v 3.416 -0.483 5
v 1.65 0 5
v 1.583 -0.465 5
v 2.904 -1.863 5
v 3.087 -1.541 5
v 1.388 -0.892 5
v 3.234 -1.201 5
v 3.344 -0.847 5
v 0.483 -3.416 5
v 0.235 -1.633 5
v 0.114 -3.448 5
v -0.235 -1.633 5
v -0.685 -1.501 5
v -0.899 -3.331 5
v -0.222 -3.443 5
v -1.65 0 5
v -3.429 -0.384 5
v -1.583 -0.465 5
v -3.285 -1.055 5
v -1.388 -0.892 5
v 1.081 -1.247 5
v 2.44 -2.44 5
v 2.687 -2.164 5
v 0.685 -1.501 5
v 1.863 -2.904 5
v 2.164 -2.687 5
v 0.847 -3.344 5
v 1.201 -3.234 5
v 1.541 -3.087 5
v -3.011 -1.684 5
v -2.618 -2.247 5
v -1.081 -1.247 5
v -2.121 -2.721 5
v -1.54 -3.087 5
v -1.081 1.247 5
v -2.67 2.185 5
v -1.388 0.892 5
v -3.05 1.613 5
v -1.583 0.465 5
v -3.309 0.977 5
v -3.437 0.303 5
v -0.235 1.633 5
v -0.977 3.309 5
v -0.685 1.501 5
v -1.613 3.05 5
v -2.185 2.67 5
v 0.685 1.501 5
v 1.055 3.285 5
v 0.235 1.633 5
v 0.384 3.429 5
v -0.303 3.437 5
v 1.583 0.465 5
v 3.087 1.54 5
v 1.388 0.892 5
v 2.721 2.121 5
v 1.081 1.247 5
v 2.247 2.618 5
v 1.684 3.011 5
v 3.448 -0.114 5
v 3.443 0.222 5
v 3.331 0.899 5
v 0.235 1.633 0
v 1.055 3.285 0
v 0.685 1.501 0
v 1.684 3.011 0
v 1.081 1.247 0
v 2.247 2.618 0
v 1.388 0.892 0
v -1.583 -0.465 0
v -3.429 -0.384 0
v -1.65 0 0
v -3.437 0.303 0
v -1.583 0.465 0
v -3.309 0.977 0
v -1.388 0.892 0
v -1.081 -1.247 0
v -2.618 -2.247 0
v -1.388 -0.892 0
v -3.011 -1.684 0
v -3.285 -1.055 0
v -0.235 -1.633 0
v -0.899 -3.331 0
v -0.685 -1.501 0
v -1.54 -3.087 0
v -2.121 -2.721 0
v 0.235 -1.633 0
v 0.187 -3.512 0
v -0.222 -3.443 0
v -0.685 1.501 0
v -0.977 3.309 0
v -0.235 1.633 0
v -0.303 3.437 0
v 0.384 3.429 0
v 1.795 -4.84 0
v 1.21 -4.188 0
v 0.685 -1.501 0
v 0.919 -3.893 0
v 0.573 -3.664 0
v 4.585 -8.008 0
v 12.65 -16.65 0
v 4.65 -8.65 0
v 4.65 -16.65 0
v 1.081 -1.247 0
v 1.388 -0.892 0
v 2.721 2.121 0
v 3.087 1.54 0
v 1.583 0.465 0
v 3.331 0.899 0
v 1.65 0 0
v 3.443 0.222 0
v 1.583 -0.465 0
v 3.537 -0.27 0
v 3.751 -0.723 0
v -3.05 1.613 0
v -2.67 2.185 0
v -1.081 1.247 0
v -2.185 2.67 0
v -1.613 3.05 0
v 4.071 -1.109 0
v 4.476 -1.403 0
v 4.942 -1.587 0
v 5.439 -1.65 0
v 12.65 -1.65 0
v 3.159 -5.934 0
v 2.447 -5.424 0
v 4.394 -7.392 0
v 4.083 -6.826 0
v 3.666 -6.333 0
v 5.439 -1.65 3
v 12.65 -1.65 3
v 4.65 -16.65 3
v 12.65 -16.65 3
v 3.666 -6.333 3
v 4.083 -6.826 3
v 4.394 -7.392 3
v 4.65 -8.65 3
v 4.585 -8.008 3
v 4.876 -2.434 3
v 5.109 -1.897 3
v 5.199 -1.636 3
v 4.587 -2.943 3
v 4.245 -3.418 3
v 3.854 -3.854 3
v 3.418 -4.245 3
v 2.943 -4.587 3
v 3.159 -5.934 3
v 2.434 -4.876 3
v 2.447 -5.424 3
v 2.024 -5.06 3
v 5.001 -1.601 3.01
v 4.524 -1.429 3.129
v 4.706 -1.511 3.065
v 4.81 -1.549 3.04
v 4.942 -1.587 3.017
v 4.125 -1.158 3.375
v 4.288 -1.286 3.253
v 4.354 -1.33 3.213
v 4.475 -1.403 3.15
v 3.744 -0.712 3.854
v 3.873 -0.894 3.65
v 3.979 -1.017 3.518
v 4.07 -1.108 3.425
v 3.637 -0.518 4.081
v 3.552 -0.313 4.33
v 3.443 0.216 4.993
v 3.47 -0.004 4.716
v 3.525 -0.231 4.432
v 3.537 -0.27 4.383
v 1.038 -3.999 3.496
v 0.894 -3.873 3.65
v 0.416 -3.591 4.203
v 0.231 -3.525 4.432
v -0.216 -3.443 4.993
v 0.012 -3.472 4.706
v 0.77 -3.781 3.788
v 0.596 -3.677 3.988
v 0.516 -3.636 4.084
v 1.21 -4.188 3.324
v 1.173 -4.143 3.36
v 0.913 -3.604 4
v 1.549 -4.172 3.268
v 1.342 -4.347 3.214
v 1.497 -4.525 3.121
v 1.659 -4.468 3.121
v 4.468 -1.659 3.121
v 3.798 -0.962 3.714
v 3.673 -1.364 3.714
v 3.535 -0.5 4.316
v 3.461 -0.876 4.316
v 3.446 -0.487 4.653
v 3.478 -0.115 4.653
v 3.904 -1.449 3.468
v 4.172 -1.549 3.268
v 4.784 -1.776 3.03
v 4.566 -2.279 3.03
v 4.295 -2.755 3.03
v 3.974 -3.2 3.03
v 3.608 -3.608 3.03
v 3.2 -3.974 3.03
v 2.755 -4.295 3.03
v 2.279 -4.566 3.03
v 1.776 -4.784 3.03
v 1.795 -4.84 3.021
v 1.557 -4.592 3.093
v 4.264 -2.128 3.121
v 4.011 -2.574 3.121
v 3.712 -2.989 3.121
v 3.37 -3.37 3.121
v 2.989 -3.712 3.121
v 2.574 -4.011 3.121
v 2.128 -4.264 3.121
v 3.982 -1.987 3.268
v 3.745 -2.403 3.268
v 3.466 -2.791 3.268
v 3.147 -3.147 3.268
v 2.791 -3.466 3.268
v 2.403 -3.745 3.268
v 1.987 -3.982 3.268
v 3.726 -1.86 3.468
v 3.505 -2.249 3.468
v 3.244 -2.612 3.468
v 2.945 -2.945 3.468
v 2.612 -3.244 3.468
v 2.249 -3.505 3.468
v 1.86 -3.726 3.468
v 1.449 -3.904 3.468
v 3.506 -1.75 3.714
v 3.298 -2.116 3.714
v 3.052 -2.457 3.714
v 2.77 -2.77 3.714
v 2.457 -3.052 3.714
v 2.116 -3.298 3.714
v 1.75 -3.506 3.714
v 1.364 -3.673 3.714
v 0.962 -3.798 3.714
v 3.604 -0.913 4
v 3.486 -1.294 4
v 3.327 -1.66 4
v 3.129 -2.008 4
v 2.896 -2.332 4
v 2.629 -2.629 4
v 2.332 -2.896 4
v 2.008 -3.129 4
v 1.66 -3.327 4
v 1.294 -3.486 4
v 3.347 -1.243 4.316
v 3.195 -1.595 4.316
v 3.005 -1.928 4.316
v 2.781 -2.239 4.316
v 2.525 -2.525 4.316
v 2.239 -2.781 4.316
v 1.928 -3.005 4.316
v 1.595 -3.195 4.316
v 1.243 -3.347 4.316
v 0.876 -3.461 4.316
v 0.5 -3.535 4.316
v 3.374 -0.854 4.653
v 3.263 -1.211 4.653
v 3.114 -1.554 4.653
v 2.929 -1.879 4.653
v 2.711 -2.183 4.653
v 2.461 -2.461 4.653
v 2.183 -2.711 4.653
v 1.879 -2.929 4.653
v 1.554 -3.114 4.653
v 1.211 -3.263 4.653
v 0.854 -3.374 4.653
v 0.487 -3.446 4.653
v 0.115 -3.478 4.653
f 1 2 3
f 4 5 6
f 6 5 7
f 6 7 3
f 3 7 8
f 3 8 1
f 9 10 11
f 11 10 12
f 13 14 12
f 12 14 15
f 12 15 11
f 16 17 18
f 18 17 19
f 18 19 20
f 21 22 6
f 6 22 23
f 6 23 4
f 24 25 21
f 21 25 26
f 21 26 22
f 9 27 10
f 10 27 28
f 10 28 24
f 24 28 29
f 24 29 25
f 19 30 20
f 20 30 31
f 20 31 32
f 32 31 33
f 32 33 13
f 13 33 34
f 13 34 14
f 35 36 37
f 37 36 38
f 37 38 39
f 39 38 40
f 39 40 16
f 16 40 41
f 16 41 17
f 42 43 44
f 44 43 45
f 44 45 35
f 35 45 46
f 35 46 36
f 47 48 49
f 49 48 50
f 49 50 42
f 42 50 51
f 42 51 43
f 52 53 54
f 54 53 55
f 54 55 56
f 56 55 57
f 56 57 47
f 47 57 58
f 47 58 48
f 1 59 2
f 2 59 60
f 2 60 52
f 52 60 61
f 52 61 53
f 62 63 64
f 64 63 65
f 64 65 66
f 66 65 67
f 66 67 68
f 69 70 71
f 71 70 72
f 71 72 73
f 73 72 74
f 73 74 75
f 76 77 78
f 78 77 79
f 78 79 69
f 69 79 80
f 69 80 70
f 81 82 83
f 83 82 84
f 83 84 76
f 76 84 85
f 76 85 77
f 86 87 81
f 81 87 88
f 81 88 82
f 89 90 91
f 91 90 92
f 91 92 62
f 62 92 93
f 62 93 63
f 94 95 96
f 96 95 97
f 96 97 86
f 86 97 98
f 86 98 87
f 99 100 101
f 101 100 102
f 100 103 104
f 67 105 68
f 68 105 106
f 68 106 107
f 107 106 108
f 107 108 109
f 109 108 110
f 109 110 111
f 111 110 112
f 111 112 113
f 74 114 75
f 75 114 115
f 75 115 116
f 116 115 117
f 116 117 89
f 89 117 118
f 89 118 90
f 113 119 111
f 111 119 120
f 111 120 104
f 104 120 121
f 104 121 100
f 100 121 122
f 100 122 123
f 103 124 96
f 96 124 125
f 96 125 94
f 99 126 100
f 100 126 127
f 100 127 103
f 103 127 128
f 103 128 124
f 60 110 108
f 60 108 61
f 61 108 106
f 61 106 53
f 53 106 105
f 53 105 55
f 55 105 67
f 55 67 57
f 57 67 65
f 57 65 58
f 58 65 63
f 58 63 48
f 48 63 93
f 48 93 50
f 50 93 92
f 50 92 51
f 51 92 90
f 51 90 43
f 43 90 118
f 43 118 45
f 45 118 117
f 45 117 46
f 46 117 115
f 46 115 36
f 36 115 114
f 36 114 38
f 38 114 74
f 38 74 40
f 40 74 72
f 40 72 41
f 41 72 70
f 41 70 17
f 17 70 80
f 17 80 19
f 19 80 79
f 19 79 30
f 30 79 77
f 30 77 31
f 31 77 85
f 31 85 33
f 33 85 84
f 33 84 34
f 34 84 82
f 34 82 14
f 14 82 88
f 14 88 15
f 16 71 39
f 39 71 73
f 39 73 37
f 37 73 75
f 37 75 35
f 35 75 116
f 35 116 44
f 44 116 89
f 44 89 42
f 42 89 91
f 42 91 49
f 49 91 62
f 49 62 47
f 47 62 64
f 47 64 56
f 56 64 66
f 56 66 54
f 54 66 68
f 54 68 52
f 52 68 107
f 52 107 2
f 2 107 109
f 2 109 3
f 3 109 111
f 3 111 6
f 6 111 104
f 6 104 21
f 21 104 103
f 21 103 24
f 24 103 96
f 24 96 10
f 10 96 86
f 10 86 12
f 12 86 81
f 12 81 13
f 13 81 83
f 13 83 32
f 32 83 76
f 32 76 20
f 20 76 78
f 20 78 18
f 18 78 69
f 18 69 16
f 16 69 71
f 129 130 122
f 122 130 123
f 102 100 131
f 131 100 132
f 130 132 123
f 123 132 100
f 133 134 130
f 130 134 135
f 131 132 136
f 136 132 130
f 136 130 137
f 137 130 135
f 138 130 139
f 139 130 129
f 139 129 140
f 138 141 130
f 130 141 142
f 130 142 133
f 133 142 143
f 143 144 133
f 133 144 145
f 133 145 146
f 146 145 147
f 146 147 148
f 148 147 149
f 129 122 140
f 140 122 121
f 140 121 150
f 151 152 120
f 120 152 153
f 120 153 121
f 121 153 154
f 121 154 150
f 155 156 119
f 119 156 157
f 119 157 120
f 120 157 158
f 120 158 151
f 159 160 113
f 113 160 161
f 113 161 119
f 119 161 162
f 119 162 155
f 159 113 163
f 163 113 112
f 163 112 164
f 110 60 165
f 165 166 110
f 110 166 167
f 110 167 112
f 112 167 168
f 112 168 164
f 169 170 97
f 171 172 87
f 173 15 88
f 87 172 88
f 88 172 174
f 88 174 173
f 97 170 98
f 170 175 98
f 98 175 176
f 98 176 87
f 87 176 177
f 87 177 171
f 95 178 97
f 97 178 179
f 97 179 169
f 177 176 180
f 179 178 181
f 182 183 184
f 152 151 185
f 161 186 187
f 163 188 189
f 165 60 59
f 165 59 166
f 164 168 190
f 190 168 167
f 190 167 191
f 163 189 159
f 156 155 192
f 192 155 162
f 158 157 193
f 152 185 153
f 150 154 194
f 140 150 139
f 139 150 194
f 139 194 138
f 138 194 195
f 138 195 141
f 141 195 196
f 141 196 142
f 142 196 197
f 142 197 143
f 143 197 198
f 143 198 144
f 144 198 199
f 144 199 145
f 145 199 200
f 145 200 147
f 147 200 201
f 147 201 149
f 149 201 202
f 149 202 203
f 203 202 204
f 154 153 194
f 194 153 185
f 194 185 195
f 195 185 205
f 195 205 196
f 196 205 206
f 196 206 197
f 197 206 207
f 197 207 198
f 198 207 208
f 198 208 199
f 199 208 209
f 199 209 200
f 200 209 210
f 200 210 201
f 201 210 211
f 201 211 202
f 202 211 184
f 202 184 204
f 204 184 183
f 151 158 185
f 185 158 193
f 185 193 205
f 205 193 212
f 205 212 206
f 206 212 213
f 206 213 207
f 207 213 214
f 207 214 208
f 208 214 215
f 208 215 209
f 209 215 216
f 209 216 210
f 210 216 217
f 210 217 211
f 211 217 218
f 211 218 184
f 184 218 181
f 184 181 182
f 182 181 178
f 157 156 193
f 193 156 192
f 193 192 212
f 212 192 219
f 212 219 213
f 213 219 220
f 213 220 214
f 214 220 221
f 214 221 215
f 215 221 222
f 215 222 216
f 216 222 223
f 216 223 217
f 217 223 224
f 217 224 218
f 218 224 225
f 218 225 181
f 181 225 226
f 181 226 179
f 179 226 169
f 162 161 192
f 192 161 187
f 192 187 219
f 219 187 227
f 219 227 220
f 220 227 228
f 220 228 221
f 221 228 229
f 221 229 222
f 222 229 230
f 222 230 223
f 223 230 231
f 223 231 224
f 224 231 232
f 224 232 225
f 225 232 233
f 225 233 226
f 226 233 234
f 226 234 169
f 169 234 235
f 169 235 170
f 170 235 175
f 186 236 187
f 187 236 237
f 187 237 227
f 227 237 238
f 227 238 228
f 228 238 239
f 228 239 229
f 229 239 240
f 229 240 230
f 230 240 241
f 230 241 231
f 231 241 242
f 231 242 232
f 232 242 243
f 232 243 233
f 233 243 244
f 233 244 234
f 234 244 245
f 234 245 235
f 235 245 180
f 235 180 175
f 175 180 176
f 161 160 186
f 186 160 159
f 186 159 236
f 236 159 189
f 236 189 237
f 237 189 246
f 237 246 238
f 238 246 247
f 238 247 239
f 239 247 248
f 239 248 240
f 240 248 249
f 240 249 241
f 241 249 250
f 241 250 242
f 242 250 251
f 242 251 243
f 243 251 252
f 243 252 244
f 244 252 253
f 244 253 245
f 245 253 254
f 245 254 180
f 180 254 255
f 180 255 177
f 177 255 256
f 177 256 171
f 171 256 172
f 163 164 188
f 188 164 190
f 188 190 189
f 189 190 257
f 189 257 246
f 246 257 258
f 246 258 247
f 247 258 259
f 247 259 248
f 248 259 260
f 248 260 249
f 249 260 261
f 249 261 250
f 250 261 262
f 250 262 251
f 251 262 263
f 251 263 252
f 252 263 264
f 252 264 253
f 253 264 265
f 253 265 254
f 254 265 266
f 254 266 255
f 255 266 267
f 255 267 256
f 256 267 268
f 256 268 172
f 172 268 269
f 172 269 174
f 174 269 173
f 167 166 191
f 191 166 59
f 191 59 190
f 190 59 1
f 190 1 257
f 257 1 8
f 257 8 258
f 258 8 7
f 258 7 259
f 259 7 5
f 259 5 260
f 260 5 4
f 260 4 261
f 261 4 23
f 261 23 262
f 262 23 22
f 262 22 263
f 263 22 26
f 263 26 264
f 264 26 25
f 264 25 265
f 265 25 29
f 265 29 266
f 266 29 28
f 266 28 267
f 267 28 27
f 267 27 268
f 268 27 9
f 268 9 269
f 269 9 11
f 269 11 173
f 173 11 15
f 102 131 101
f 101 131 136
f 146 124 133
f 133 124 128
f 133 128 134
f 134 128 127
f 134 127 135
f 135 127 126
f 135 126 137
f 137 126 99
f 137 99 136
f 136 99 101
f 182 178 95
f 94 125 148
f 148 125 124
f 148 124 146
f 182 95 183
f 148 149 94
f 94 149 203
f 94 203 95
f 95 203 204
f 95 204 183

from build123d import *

# Parameters (mm, degrees)
SKETCH1_R           = 3.45
SKETCH1_R_2         = 1.65
BOSS_EXTRUDE1_DEPTH = 5
SKETCH2_W           = 11
SKETCH2_H           = 15
BOSS_EXTRUDE2_DEPTH = 3
FILLET1_R           = 2
CUT_EXTRUDE1_DEPTH  = 22.499883744
FILLET2_R           = 8


with BuildPart() as part:
    # Sketch1 → Boss-Extrude1 (new body)
    with BuildSketch(Plane.XY):
        Circle(SKETCH1_R)
        Circle(SKETCH1_R_2, mode=Mode.SUBTRACT)
    extrude(amount=BOSS_EXTRUDE1_DEPTH)

    # Sketch2 → Boss-Extrude2 (add)
    with BuildSketch(Plane(origin=(0, 0, 0), x_dir=(-1, 0, 0), z_dir=(0, 0, -1))):
        with Locations((-7.15, -9.15)):
            Rectangle(SKETCH2_W, SKETCH2_H)
    extrude(amount=-BOSS_EXTRUDE2_DEPTH)

    # Fillet1
    # the kernel refuses this fillet: 2 mm, written as the material it adds along each edge
    with BuildSketch(Plane(origin=(0, 0, 3), x_dir=(0.5811301681486029, 0.8138106215008357, 0), z_dir=(-0.8138106215008357, 0.5811301681486029, 0))) as fillet1_piece_1_section:
        with BuildLine():
            CenterArc((3.45 + FILLET1_R, -FILLET1_R), FILLET1_R, 90, 90)
            Line((3.45 + FILLET1_R, 0), (3.45 + FILLET1_R, FILLET1_R * 0.02))
            Line((3.45 + FILLET1_R, FILLET1_R * 0.02), (3.45 - FILLET1_R * 0.02, FILLET1_R * 0.02))
            Line((3.45 - FILLET1_R * 0.02, FILLET1_R * 0.02), (3.45 - FILLET1_R * 0.02, -FILLET1_R))
            Line((3.45 - FILLET1_R * 0.02, -FILLET1_R), (3.45, -FILLET1_R))
        make_face()
    fillet1_piece_1 = revolve(axis=Axis((0, 0, 3), (0, 0, -1)), revolution_arc=198.93985607, mode=Mode.PRIVATE)
    fillet1_piece_1 = split(fillet1_piece_1, bisect_by=Plane(origin=(1.65, -2.775668714, 3.387031985), z_dir=(1, 0, 0)), keep=Keep.TOP, mode=Mode.PRIVATE)
    fillet1_piece_1 = split(fillet1_piece_1, bisect_by=Plane(origin=(2.775669412, -1.65, 3.387031985), z_dir=(0, -1, 0)), keep=Keep.TOP, mode=Mode.PRIVATE)
    add(fillet1_piece_1)
    with BuildSketch(Plane(origin=(1.65, -3.029851482, 3), x_dir=(-0.9765037028672113, -0.21550062247386903, 0), z_dir=(0, 0, -1))) as fillet1_piece_2:
        with BuildLine():
            CenterArc((2.472126505, -1.921296938), FILLET1_R, 106.126978769, 86.317920605)
            Line((0.519119099, -2.352298183), (0.480058951, -2.360918208))
            Line((0.480058951, -2.360918208), (-0.039060148, -0.008620025))
            Line((-0.039060148, -0.008620025), (0.011110681, 0.038425939))
            ThreePointArc((0.011110681, 0.038425939), (0.958296229, -0.095762782), (1.905481778, 0.038425939))
            Line((1.905481778, 0.038425939), (1.916592459, 0))
        make_face()
    extrude(amount=3)
    with BuildSketch(Plane(origin=(3.029851482, -1.65, 3), x_dir=(0.21550062247386917, 0.9765037028672113, 0), z_dir=(0, 0, -1))) as fillet1_piece_3:
        with BuildLine():
            CenterArc((2.472126505, 1.921296938), FILLET1_R, 167.555100626, 86.317920605)
            Line((0.519119099, 2.352298183), (0.480058951, 2.360918208))
            Line((0.480058951, 2.360918208), (-0.039060148, 0.008620025))
            Line((-0.039060148, 0.008620025), (0.011110681, -0.038425939))
            ThreePointArc((0.011110681, -0.038425939), (0.958296229, 0.095762782), (1.905481778, -0.038425939))
            Line((1.905481778, -0.038425939), (1.916592459, 0))
        make_face()
    extrude(amount=3)
    with BuildSketch(Plane(origin=(0, 0, 3), x_dir=(0.5811301681486029, 0.8138106215008357, 0), z_dir=(-0.8138106215008357, 0.5811301681486029, 0))) as fillet1_piece_4a_section:
        with BuildLine():
            CenterArc((3.45 + FILLET1_R, -FILLET1_R), FILLET1_R, 90, 90)
            Line((3.45 + FILLET1_R, 0), (3.45 + FILLET1_R, FILLET1_R * 0.02))
            Line((3.45 + FILLET1_R, FILLET1_R * 0.02), (3.45 - FILLET1_R * 0.02, FILLET1_R * 0.02))
            Line((3.45 - FILLET1_R * 0.02, FILLET1_R * 0.02), (3.45 - FILLET1_R * 0.02, -FILLET1_R))
            Line((3.45 - FILLET1_R * 0.02, -FILLET1_R), (3.45, -FILLET1_R))
        make_face()
    fillet1_piece_4a = revolve(axis=Axis((0, 0, 3), (0, 0, -1)), revolution_arc=198.93985607, mode=Mode.PRIVATE)
    fillet1_piece_4a = split(fillet1_piece_4a, bisect_by=Plane(origin=(3.505644008, -1.65, 3.43409217), z_dir=(0, 1, 0)), keep=Keep.TOP, mode=Mode.PRIVATE)
    with BuildSketch(Plane(origin=(3.029851482, -1.65, 9.022245937), x_dir=(0.21550062247386909, 0.9765037028672113, 0), z_dir=(0, 0, -1))) as fillet1_piece_4b_section:
        with BuildLine():
            CenterArc((2.472126505, 1.921296938), FILLET1_R, 167.555100626, 86.317920605)
            Line((0.519119099, 2.352298183), (0.480058951, 2.360918208))
            Line((0.480058951, 2.360918208), (-0.039060148, 0.008620025))
            Line((-0.039060148, 0.008620025), (0.011110681, -0.038425939))
            ThreePointArc((0.011110681, -0.038425939), (0.958296229, 0.095762782), (1.905481778, -0.038425939))
            Line((1.905481778, -0.038425939), (1.916592459, 0))
        make_face()
    fillet1_piece_4b = extrude(amount=9.022245937, mode=Mode.PRIVATE)
    fillet1_piece_4b = split(fillet1_piece_4b, bisect_by=Plane(origin=(3.781400642, -1.225418489, 3), z_dir=(0, 0, 1)), keep=Keep.TOP, mode=Mode.PRIVATE)
    fillet1_piece_4 = fillet1_piece_4a & fillet1_piece_4b
    add(fillet1_piece_4)
    with BuildSketch(Plane(origin=(1.65, -3.029851482, 9.022245937), x_dir=(-0.9765037028672113, -0.2155006224738689, 0), z_dir=(0, 0, -1))) as fillet1_piece_5a_section:
        with BuildLine():
            CenterArc((2.472126505, -1.921296938), FILLET1_R, 106.126978769, 86.317920605)
            Line((0.519119099, -2.352298183), (0.480058951, -2.360918208))
            Line((0.480058951, -2.360918208), (-0.039060148, -0.008620025))
            Line((-0.039060148, -0.008620025), (0.011110681, 0.038425939))
            ThreePointArc((0.011110681, 0.038425939), (0.958296229, -0.095762782), (1.905481778, 0.038425939))
            Line((1.905481778, 0.038425939), (1.916592459, 0))
        make_face()
    fillet1_piece_5a = extrude(amount=9.022245937, mode=Mode.PRIVATE)
    fillet1_piece_5a = split(fillet1_piece_5a, bisect_by=Plane(origin=(1.225418489, -3.781400642, 3), z_dir=(0, 0, 1)), keep=Keep.TOP, mode=Mode.PRIVATE)
    with BuildSketch(Plane(origin=(0, 0, 3), x_dir=(0.5811301681486029, 0.8138106215008357, 0), z_dir=(-0.8138106215008357, 0.5811301681486029, 0))) as fillet1_piece_5b_section:
        with BuildLine():
            CenterArc((3.45 + FILLET1_R, -FILLET1_R), FILLET1_R, 90, 90)
            Line((3.45 + FILLET1_R, 0), (3.45 + FILLET1_R, FILLET1_R * 0.02))
            Line((3.45 + FILLET1_R, FILLET1_R * 0.02), (3.45 - FILLET1_R * 0.02, FILLET1_R * 0.02))
            Line((3.45 - FILLET1_R * 0.02, FILLET1_R * 0.02), (3.45 - FILLET1_R * 0.02, -FILLET1_R))
            Line((3.45 - FILLET1_R * 0.02, -FILLET1_R), (3.45, -FILLET1_R))
        make_face()
    fillet1_piece_5b = revolve(axis=Axis((0, 0, 3), (0, 0, -1)), revolution_arc=198.93985607, mode=Mode.PRIVATE)
    fillet1_piece_5b = split(fillet1_piece_5b, bisect_by=Plane(origin=(1.65, -3.505643385, 3.43409212), z_dir=(-1, 0, 0)), keep=Keep.TOP, mode=Mode.PRIVATE)
    fillet1_piece_5 = fillet1_piece_5a & fillet1_piece_5b
    add(fillet1_piece_5)

    # Sketch3 → Cut-Extrude1 (cut, through all)
    with BuildSketch(Plane(origin=(0, 0, 0), x_dir=(-1, 0, 0), z_dir=(0, 0, -1))):
        with BuildLine():
            Line((-4.65, -16.65), (-4.65, -8.65))
            ThreePointArc((-4.65, -8.65), (-3.783315491, -6.452721713), (-1.65, -5.438749856))
            Line((-1.65, -5.438749856), (-1.65, -16.65))
            Line((-1.65, -16.65), (-4.65, -16.65))
        make_face()
    extrude(amount=-CUT_EXTRUDE1_DEPTH, mode=Mode.SUBTRACT)

    # Fillet2
    fillet2_edges = [part.edges().sort_by_distance(p)[0] for p in [
        (1.65, -5.438749856, 1.5),
    ]]
    fillet(fillet2_edges, radius=FILLET2_R)


solid = part.part
